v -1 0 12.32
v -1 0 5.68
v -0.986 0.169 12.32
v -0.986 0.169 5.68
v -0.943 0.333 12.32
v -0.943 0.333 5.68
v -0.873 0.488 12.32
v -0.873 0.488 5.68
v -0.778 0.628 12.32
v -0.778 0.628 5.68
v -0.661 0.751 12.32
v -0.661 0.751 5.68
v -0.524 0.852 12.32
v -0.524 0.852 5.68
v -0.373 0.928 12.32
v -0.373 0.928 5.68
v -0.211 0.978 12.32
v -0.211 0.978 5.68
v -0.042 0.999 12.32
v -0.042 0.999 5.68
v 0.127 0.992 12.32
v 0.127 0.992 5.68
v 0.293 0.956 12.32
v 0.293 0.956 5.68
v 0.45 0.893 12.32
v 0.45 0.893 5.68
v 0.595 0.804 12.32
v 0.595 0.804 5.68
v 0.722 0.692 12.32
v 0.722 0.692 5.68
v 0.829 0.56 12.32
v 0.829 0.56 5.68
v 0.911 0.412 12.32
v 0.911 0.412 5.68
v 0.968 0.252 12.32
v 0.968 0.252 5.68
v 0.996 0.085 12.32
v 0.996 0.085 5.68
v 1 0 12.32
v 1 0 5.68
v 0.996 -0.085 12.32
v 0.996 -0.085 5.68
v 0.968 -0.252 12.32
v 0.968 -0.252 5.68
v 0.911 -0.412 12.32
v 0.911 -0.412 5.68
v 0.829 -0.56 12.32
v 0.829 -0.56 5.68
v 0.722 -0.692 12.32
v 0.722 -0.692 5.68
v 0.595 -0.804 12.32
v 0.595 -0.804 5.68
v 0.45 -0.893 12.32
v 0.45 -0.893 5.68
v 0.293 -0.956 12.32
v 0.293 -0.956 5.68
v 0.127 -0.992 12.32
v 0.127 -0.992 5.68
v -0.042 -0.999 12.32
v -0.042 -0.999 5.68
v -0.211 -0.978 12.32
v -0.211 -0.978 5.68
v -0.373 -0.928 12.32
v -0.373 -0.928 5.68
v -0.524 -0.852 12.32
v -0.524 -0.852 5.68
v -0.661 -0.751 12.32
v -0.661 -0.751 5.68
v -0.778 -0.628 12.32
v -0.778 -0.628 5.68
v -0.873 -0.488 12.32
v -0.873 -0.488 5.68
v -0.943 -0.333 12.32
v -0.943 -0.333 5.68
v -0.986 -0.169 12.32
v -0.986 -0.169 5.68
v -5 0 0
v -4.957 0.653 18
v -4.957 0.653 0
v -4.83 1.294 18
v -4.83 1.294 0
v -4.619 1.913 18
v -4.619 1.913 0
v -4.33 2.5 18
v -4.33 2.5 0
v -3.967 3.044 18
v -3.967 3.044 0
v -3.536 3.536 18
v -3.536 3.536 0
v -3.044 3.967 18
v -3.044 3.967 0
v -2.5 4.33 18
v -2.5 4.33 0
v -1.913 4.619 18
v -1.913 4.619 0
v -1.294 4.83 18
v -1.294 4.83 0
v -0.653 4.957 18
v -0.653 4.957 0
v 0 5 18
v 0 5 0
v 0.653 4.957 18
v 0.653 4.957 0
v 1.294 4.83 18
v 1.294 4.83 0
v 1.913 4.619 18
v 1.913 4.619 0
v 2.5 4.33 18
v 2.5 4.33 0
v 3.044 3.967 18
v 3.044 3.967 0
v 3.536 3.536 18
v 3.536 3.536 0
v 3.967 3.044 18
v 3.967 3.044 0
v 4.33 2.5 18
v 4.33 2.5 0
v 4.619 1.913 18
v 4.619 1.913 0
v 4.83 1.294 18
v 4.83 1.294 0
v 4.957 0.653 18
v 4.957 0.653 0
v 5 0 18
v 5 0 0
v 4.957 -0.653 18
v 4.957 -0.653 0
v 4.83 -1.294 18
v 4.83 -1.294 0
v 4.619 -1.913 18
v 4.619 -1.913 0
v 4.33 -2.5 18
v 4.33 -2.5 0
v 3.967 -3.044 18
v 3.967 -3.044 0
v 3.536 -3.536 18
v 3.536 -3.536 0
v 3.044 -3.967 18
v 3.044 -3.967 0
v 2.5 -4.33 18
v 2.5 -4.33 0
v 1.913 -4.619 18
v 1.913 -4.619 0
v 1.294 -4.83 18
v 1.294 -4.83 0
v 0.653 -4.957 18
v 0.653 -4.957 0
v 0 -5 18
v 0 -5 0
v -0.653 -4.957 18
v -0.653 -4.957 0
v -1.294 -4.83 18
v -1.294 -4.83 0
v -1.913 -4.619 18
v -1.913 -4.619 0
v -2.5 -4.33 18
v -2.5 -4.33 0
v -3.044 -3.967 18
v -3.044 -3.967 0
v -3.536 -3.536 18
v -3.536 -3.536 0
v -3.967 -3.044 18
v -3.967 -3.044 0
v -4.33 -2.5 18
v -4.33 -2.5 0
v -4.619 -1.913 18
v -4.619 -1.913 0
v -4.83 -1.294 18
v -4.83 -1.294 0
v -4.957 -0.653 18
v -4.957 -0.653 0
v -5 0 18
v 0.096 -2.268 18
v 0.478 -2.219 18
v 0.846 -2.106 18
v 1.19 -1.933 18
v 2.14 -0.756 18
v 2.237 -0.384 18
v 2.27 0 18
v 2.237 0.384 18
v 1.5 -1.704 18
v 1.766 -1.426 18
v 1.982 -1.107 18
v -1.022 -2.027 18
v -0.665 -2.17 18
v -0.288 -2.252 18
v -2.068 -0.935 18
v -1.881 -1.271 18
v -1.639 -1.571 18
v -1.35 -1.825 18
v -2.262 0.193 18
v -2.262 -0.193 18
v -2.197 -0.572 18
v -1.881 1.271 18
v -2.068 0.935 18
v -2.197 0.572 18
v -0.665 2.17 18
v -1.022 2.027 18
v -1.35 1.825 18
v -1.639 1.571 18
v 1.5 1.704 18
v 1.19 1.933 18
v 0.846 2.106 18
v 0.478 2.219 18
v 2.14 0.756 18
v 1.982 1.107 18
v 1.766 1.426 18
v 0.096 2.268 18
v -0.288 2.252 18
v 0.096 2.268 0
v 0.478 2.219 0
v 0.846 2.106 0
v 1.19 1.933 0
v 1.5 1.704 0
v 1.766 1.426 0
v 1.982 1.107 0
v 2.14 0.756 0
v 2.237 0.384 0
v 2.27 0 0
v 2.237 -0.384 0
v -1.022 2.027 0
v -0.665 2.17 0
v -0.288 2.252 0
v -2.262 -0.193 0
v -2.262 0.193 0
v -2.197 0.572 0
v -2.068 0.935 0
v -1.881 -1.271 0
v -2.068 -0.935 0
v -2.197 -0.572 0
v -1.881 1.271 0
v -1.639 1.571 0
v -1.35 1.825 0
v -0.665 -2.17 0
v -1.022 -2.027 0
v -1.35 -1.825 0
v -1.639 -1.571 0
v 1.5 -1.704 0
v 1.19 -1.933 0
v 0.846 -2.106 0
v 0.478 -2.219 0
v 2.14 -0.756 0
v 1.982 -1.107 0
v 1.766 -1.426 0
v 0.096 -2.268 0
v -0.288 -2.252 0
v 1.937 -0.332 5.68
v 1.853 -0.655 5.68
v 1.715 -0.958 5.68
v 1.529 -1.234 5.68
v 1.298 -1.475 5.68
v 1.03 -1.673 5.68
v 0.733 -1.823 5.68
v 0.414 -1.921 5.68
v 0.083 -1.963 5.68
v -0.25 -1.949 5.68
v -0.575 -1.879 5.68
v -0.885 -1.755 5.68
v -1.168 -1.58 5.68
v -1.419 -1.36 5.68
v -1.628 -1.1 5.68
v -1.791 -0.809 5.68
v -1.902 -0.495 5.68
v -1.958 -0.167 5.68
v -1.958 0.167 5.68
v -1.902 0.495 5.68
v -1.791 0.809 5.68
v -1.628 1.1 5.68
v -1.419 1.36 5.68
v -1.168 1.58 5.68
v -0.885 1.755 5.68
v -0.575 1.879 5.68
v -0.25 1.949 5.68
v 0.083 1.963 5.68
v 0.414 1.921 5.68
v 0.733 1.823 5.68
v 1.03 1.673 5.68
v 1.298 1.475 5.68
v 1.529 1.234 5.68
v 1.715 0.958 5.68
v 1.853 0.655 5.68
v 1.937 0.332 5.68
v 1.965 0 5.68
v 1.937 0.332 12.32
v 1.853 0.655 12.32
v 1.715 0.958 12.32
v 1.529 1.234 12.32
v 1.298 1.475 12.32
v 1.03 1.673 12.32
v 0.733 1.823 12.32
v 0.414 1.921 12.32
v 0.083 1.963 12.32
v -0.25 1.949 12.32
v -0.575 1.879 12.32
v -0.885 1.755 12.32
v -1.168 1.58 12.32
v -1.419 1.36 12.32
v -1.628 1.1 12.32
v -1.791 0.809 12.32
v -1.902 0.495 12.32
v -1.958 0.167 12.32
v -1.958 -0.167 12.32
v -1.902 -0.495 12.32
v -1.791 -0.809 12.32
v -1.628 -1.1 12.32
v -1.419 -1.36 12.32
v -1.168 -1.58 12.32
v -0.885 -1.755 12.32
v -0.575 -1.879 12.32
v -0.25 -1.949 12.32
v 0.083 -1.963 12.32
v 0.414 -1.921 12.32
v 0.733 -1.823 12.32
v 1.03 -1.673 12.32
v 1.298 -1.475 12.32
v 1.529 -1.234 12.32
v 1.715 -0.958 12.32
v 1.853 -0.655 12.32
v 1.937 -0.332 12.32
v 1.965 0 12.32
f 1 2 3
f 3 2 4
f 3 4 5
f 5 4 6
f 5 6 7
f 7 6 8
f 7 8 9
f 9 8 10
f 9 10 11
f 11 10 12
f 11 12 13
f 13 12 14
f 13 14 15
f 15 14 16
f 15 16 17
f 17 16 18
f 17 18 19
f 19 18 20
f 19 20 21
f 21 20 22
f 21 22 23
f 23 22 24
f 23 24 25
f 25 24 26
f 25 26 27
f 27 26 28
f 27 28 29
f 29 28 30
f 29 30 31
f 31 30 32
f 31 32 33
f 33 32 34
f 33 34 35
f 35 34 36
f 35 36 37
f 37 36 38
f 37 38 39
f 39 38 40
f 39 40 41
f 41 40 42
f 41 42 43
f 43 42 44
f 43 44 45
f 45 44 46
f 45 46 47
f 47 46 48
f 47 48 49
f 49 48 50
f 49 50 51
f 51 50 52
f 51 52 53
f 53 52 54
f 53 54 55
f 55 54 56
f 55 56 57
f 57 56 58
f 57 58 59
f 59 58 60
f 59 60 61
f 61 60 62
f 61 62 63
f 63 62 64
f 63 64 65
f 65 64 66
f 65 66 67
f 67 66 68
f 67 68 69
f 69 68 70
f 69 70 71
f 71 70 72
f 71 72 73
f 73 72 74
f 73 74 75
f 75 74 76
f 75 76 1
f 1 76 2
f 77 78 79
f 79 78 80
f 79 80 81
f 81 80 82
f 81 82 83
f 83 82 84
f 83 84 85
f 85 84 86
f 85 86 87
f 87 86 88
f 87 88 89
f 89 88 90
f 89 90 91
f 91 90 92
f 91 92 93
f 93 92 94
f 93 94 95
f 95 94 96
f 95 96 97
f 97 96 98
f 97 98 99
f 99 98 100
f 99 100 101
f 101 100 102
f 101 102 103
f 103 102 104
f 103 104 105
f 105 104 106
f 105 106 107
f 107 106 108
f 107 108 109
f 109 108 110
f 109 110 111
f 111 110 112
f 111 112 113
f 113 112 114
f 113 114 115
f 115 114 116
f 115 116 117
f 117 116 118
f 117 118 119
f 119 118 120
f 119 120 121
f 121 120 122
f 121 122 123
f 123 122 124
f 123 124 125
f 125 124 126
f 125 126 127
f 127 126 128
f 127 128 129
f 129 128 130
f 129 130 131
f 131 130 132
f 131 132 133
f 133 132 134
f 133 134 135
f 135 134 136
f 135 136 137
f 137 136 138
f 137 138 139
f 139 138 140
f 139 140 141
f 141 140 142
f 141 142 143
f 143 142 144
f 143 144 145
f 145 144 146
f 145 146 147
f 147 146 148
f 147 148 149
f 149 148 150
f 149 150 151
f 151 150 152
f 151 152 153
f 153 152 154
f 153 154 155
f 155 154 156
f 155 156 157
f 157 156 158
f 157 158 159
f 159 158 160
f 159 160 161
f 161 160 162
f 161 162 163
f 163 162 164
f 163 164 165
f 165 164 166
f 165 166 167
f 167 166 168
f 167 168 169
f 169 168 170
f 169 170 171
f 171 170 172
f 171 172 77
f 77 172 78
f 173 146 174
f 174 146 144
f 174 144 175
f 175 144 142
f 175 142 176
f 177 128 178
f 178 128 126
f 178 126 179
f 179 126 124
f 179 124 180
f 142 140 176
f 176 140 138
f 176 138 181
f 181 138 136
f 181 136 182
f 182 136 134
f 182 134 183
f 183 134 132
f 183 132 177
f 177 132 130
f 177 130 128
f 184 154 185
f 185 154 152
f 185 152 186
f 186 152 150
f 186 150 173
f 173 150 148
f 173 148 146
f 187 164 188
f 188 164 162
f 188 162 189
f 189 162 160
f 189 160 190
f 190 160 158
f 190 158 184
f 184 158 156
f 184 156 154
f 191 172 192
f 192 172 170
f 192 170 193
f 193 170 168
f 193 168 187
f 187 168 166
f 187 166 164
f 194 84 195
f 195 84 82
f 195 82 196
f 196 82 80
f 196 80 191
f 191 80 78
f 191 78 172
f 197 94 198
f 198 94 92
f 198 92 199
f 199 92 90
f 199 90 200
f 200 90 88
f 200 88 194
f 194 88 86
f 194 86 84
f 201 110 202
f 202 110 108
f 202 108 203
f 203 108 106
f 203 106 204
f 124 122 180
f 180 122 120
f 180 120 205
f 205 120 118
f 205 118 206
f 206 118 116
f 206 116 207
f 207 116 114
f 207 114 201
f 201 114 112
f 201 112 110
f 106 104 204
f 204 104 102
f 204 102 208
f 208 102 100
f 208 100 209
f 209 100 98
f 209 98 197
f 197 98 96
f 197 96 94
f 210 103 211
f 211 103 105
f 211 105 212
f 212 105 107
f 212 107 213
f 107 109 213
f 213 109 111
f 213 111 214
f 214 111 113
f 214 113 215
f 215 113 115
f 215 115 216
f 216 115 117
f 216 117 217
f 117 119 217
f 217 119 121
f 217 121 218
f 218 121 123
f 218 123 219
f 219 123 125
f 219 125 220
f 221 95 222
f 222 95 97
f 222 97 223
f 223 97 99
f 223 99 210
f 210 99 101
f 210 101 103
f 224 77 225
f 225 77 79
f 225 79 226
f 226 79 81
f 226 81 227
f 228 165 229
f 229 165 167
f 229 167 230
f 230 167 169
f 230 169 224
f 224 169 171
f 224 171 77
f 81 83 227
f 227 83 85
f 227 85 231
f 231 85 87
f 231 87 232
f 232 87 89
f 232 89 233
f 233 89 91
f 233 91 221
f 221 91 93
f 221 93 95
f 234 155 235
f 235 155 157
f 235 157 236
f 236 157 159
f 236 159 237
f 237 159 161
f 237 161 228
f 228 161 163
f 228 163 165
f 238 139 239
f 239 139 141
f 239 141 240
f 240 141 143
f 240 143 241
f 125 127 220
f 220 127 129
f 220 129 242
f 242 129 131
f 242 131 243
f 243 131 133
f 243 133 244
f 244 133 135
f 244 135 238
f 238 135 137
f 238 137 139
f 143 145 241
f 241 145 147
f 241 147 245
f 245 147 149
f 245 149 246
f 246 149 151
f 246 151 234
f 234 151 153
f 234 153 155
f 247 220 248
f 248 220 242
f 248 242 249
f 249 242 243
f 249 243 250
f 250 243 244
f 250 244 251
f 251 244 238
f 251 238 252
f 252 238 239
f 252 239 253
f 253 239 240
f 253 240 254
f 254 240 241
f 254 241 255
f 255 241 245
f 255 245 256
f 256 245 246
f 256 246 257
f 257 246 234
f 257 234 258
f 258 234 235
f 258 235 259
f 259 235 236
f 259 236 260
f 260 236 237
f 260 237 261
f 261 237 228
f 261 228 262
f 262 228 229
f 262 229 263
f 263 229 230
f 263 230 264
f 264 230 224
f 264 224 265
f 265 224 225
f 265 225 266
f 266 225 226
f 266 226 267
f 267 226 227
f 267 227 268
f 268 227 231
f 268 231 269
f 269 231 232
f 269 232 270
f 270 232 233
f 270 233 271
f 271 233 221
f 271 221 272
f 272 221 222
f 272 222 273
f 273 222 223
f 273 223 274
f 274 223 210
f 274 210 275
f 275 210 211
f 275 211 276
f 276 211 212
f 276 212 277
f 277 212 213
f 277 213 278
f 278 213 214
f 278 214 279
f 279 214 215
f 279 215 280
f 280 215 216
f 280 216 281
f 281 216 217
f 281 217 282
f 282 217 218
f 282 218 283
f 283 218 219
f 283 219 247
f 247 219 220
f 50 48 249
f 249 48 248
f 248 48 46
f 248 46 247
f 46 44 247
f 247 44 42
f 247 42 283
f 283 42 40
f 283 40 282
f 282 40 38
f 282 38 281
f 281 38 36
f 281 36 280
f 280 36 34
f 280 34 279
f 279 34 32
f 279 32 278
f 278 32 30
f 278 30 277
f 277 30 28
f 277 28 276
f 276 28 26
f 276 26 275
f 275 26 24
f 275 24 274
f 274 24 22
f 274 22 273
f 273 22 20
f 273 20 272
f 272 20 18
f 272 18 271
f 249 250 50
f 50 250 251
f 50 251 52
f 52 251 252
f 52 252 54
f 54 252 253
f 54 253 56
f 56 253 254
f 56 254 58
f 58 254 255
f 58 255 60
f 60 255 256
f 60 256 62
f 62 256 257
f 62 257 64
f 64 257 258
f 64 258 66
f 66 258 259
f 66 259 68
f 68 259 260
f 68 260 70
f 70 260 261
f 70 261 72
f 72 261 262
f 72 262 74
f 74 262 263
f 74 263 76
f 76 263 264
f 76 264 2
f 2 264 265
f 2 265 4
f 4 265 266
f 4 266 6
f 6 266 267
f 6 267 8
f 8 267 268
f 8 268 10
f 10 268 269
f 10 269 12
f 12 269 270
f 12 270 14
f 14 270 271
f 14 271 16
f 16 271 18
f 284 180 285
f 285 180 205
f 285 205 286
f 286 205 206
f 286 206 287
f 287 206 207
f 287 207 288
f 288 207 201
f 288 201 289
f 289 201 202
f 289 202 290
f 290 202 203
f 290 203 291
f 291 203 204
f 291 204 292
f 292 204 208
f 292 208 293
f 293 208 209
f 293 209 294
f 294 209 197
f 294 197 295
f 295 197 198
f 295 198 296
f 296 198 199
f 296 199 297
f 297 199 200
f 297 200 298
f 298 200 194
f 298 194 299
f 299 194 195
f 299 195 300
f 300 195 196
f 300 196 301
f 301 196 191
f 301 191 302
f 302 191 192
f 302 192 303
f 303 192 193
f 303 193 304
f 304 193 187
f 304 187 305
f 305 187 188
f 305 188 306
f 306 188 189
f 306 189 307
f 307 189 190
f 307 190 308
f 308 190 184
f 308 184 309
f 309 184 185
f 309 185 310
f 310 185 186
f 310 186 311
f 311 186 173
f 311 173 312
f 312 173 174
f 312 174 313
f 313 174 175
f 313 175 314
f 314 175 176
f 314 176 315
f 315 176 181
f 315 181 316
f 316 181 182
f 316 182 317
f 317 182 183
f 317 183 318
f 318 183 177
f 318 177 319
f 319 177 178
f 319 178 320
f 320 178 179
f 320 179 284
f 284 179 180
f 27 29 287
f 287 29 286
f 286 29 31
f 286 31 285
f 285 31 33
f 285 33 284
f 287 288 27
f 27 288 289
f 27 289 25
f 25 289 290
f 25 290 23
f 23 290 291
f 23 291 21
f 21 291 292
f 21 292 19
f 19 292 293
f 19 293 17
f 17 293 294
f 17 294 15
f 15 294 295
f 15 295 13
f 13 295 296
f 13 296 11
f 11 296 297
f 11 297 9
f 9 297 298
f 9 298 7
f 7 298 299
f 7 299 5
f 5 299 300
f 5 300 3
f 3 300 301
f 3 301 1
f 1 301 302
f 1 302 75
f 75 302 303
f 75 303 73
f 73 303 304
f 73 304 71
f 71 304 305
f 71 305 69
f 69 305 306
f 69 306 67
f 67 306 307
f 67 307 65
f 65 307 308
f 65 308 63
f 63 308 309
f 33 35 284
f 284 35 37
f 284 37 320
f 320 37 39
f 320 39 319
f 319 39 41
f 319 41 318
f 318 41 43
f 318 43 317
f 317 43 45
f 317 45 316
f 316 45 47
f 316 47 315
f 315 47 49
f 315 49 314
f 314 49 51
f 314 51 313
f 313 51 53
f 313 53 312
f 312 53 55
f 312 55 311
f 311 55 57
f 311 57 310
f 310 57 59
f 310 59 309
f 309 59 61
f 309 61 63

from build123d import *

# Parameters (mm, degrees)
SKETCH1_R           = 5
BOSS_EXTRUDE1_DEPTH = 18
SKETCH2_R           = 2.27
CUT_EXTRUDE1_DEPTH  = 5.68
CUT_EXTRUDE1_TAPER  = 3.074
SKETCH7_R           = 1
CUT_EXTRUDE2_DEPTH  = 19
SKETCH9_R           = 2.27
CUT_EXTRUDE3_DEPTH  = 5.68
CUT_EXTRUDE3_TAPER  = 3.074


with BuildPart() as part:
    # Sketch1 → Boss-Extrude1 (new body)
    with BuildSketch(Plane.XY):
        Circle(SKETCH1_R)
    extrude(amount=BOSS_EXTRUDE1_DEPTH)

    # Sketch2 → Cut-Extrude1 (cut)
    with BuildSketch(Plane.XY):
        Circle(SKETCH2_R)
    extrude(amount=CUT_EXTRUDE1_DEPTH, taper=CUT_EXTRUDE1_TAPER, mode=Mode.SUBTRACT)

    # Sketch7 → Cut-Extrude2 (cut, through all)
    with BuildSketch(Plane.XY):
        Circle(SKETCH7_R)
    extrude(amount=CUT_EXTRUDE2_DEPTH, mode=Mode.SUBTRACT)

    # Sketch9 → Cut-Extrude3 (cut)
    with BuildSketch(Plane.XY.offset(18)):
        Circle(SKETCH9_R)
    extrude(amount=-CUT_EXTRUDE3_DEPTH, taper=CUT_EXTRUDE3_TAPER, mode=Mode.SUBTRACT)


solid = part.part
